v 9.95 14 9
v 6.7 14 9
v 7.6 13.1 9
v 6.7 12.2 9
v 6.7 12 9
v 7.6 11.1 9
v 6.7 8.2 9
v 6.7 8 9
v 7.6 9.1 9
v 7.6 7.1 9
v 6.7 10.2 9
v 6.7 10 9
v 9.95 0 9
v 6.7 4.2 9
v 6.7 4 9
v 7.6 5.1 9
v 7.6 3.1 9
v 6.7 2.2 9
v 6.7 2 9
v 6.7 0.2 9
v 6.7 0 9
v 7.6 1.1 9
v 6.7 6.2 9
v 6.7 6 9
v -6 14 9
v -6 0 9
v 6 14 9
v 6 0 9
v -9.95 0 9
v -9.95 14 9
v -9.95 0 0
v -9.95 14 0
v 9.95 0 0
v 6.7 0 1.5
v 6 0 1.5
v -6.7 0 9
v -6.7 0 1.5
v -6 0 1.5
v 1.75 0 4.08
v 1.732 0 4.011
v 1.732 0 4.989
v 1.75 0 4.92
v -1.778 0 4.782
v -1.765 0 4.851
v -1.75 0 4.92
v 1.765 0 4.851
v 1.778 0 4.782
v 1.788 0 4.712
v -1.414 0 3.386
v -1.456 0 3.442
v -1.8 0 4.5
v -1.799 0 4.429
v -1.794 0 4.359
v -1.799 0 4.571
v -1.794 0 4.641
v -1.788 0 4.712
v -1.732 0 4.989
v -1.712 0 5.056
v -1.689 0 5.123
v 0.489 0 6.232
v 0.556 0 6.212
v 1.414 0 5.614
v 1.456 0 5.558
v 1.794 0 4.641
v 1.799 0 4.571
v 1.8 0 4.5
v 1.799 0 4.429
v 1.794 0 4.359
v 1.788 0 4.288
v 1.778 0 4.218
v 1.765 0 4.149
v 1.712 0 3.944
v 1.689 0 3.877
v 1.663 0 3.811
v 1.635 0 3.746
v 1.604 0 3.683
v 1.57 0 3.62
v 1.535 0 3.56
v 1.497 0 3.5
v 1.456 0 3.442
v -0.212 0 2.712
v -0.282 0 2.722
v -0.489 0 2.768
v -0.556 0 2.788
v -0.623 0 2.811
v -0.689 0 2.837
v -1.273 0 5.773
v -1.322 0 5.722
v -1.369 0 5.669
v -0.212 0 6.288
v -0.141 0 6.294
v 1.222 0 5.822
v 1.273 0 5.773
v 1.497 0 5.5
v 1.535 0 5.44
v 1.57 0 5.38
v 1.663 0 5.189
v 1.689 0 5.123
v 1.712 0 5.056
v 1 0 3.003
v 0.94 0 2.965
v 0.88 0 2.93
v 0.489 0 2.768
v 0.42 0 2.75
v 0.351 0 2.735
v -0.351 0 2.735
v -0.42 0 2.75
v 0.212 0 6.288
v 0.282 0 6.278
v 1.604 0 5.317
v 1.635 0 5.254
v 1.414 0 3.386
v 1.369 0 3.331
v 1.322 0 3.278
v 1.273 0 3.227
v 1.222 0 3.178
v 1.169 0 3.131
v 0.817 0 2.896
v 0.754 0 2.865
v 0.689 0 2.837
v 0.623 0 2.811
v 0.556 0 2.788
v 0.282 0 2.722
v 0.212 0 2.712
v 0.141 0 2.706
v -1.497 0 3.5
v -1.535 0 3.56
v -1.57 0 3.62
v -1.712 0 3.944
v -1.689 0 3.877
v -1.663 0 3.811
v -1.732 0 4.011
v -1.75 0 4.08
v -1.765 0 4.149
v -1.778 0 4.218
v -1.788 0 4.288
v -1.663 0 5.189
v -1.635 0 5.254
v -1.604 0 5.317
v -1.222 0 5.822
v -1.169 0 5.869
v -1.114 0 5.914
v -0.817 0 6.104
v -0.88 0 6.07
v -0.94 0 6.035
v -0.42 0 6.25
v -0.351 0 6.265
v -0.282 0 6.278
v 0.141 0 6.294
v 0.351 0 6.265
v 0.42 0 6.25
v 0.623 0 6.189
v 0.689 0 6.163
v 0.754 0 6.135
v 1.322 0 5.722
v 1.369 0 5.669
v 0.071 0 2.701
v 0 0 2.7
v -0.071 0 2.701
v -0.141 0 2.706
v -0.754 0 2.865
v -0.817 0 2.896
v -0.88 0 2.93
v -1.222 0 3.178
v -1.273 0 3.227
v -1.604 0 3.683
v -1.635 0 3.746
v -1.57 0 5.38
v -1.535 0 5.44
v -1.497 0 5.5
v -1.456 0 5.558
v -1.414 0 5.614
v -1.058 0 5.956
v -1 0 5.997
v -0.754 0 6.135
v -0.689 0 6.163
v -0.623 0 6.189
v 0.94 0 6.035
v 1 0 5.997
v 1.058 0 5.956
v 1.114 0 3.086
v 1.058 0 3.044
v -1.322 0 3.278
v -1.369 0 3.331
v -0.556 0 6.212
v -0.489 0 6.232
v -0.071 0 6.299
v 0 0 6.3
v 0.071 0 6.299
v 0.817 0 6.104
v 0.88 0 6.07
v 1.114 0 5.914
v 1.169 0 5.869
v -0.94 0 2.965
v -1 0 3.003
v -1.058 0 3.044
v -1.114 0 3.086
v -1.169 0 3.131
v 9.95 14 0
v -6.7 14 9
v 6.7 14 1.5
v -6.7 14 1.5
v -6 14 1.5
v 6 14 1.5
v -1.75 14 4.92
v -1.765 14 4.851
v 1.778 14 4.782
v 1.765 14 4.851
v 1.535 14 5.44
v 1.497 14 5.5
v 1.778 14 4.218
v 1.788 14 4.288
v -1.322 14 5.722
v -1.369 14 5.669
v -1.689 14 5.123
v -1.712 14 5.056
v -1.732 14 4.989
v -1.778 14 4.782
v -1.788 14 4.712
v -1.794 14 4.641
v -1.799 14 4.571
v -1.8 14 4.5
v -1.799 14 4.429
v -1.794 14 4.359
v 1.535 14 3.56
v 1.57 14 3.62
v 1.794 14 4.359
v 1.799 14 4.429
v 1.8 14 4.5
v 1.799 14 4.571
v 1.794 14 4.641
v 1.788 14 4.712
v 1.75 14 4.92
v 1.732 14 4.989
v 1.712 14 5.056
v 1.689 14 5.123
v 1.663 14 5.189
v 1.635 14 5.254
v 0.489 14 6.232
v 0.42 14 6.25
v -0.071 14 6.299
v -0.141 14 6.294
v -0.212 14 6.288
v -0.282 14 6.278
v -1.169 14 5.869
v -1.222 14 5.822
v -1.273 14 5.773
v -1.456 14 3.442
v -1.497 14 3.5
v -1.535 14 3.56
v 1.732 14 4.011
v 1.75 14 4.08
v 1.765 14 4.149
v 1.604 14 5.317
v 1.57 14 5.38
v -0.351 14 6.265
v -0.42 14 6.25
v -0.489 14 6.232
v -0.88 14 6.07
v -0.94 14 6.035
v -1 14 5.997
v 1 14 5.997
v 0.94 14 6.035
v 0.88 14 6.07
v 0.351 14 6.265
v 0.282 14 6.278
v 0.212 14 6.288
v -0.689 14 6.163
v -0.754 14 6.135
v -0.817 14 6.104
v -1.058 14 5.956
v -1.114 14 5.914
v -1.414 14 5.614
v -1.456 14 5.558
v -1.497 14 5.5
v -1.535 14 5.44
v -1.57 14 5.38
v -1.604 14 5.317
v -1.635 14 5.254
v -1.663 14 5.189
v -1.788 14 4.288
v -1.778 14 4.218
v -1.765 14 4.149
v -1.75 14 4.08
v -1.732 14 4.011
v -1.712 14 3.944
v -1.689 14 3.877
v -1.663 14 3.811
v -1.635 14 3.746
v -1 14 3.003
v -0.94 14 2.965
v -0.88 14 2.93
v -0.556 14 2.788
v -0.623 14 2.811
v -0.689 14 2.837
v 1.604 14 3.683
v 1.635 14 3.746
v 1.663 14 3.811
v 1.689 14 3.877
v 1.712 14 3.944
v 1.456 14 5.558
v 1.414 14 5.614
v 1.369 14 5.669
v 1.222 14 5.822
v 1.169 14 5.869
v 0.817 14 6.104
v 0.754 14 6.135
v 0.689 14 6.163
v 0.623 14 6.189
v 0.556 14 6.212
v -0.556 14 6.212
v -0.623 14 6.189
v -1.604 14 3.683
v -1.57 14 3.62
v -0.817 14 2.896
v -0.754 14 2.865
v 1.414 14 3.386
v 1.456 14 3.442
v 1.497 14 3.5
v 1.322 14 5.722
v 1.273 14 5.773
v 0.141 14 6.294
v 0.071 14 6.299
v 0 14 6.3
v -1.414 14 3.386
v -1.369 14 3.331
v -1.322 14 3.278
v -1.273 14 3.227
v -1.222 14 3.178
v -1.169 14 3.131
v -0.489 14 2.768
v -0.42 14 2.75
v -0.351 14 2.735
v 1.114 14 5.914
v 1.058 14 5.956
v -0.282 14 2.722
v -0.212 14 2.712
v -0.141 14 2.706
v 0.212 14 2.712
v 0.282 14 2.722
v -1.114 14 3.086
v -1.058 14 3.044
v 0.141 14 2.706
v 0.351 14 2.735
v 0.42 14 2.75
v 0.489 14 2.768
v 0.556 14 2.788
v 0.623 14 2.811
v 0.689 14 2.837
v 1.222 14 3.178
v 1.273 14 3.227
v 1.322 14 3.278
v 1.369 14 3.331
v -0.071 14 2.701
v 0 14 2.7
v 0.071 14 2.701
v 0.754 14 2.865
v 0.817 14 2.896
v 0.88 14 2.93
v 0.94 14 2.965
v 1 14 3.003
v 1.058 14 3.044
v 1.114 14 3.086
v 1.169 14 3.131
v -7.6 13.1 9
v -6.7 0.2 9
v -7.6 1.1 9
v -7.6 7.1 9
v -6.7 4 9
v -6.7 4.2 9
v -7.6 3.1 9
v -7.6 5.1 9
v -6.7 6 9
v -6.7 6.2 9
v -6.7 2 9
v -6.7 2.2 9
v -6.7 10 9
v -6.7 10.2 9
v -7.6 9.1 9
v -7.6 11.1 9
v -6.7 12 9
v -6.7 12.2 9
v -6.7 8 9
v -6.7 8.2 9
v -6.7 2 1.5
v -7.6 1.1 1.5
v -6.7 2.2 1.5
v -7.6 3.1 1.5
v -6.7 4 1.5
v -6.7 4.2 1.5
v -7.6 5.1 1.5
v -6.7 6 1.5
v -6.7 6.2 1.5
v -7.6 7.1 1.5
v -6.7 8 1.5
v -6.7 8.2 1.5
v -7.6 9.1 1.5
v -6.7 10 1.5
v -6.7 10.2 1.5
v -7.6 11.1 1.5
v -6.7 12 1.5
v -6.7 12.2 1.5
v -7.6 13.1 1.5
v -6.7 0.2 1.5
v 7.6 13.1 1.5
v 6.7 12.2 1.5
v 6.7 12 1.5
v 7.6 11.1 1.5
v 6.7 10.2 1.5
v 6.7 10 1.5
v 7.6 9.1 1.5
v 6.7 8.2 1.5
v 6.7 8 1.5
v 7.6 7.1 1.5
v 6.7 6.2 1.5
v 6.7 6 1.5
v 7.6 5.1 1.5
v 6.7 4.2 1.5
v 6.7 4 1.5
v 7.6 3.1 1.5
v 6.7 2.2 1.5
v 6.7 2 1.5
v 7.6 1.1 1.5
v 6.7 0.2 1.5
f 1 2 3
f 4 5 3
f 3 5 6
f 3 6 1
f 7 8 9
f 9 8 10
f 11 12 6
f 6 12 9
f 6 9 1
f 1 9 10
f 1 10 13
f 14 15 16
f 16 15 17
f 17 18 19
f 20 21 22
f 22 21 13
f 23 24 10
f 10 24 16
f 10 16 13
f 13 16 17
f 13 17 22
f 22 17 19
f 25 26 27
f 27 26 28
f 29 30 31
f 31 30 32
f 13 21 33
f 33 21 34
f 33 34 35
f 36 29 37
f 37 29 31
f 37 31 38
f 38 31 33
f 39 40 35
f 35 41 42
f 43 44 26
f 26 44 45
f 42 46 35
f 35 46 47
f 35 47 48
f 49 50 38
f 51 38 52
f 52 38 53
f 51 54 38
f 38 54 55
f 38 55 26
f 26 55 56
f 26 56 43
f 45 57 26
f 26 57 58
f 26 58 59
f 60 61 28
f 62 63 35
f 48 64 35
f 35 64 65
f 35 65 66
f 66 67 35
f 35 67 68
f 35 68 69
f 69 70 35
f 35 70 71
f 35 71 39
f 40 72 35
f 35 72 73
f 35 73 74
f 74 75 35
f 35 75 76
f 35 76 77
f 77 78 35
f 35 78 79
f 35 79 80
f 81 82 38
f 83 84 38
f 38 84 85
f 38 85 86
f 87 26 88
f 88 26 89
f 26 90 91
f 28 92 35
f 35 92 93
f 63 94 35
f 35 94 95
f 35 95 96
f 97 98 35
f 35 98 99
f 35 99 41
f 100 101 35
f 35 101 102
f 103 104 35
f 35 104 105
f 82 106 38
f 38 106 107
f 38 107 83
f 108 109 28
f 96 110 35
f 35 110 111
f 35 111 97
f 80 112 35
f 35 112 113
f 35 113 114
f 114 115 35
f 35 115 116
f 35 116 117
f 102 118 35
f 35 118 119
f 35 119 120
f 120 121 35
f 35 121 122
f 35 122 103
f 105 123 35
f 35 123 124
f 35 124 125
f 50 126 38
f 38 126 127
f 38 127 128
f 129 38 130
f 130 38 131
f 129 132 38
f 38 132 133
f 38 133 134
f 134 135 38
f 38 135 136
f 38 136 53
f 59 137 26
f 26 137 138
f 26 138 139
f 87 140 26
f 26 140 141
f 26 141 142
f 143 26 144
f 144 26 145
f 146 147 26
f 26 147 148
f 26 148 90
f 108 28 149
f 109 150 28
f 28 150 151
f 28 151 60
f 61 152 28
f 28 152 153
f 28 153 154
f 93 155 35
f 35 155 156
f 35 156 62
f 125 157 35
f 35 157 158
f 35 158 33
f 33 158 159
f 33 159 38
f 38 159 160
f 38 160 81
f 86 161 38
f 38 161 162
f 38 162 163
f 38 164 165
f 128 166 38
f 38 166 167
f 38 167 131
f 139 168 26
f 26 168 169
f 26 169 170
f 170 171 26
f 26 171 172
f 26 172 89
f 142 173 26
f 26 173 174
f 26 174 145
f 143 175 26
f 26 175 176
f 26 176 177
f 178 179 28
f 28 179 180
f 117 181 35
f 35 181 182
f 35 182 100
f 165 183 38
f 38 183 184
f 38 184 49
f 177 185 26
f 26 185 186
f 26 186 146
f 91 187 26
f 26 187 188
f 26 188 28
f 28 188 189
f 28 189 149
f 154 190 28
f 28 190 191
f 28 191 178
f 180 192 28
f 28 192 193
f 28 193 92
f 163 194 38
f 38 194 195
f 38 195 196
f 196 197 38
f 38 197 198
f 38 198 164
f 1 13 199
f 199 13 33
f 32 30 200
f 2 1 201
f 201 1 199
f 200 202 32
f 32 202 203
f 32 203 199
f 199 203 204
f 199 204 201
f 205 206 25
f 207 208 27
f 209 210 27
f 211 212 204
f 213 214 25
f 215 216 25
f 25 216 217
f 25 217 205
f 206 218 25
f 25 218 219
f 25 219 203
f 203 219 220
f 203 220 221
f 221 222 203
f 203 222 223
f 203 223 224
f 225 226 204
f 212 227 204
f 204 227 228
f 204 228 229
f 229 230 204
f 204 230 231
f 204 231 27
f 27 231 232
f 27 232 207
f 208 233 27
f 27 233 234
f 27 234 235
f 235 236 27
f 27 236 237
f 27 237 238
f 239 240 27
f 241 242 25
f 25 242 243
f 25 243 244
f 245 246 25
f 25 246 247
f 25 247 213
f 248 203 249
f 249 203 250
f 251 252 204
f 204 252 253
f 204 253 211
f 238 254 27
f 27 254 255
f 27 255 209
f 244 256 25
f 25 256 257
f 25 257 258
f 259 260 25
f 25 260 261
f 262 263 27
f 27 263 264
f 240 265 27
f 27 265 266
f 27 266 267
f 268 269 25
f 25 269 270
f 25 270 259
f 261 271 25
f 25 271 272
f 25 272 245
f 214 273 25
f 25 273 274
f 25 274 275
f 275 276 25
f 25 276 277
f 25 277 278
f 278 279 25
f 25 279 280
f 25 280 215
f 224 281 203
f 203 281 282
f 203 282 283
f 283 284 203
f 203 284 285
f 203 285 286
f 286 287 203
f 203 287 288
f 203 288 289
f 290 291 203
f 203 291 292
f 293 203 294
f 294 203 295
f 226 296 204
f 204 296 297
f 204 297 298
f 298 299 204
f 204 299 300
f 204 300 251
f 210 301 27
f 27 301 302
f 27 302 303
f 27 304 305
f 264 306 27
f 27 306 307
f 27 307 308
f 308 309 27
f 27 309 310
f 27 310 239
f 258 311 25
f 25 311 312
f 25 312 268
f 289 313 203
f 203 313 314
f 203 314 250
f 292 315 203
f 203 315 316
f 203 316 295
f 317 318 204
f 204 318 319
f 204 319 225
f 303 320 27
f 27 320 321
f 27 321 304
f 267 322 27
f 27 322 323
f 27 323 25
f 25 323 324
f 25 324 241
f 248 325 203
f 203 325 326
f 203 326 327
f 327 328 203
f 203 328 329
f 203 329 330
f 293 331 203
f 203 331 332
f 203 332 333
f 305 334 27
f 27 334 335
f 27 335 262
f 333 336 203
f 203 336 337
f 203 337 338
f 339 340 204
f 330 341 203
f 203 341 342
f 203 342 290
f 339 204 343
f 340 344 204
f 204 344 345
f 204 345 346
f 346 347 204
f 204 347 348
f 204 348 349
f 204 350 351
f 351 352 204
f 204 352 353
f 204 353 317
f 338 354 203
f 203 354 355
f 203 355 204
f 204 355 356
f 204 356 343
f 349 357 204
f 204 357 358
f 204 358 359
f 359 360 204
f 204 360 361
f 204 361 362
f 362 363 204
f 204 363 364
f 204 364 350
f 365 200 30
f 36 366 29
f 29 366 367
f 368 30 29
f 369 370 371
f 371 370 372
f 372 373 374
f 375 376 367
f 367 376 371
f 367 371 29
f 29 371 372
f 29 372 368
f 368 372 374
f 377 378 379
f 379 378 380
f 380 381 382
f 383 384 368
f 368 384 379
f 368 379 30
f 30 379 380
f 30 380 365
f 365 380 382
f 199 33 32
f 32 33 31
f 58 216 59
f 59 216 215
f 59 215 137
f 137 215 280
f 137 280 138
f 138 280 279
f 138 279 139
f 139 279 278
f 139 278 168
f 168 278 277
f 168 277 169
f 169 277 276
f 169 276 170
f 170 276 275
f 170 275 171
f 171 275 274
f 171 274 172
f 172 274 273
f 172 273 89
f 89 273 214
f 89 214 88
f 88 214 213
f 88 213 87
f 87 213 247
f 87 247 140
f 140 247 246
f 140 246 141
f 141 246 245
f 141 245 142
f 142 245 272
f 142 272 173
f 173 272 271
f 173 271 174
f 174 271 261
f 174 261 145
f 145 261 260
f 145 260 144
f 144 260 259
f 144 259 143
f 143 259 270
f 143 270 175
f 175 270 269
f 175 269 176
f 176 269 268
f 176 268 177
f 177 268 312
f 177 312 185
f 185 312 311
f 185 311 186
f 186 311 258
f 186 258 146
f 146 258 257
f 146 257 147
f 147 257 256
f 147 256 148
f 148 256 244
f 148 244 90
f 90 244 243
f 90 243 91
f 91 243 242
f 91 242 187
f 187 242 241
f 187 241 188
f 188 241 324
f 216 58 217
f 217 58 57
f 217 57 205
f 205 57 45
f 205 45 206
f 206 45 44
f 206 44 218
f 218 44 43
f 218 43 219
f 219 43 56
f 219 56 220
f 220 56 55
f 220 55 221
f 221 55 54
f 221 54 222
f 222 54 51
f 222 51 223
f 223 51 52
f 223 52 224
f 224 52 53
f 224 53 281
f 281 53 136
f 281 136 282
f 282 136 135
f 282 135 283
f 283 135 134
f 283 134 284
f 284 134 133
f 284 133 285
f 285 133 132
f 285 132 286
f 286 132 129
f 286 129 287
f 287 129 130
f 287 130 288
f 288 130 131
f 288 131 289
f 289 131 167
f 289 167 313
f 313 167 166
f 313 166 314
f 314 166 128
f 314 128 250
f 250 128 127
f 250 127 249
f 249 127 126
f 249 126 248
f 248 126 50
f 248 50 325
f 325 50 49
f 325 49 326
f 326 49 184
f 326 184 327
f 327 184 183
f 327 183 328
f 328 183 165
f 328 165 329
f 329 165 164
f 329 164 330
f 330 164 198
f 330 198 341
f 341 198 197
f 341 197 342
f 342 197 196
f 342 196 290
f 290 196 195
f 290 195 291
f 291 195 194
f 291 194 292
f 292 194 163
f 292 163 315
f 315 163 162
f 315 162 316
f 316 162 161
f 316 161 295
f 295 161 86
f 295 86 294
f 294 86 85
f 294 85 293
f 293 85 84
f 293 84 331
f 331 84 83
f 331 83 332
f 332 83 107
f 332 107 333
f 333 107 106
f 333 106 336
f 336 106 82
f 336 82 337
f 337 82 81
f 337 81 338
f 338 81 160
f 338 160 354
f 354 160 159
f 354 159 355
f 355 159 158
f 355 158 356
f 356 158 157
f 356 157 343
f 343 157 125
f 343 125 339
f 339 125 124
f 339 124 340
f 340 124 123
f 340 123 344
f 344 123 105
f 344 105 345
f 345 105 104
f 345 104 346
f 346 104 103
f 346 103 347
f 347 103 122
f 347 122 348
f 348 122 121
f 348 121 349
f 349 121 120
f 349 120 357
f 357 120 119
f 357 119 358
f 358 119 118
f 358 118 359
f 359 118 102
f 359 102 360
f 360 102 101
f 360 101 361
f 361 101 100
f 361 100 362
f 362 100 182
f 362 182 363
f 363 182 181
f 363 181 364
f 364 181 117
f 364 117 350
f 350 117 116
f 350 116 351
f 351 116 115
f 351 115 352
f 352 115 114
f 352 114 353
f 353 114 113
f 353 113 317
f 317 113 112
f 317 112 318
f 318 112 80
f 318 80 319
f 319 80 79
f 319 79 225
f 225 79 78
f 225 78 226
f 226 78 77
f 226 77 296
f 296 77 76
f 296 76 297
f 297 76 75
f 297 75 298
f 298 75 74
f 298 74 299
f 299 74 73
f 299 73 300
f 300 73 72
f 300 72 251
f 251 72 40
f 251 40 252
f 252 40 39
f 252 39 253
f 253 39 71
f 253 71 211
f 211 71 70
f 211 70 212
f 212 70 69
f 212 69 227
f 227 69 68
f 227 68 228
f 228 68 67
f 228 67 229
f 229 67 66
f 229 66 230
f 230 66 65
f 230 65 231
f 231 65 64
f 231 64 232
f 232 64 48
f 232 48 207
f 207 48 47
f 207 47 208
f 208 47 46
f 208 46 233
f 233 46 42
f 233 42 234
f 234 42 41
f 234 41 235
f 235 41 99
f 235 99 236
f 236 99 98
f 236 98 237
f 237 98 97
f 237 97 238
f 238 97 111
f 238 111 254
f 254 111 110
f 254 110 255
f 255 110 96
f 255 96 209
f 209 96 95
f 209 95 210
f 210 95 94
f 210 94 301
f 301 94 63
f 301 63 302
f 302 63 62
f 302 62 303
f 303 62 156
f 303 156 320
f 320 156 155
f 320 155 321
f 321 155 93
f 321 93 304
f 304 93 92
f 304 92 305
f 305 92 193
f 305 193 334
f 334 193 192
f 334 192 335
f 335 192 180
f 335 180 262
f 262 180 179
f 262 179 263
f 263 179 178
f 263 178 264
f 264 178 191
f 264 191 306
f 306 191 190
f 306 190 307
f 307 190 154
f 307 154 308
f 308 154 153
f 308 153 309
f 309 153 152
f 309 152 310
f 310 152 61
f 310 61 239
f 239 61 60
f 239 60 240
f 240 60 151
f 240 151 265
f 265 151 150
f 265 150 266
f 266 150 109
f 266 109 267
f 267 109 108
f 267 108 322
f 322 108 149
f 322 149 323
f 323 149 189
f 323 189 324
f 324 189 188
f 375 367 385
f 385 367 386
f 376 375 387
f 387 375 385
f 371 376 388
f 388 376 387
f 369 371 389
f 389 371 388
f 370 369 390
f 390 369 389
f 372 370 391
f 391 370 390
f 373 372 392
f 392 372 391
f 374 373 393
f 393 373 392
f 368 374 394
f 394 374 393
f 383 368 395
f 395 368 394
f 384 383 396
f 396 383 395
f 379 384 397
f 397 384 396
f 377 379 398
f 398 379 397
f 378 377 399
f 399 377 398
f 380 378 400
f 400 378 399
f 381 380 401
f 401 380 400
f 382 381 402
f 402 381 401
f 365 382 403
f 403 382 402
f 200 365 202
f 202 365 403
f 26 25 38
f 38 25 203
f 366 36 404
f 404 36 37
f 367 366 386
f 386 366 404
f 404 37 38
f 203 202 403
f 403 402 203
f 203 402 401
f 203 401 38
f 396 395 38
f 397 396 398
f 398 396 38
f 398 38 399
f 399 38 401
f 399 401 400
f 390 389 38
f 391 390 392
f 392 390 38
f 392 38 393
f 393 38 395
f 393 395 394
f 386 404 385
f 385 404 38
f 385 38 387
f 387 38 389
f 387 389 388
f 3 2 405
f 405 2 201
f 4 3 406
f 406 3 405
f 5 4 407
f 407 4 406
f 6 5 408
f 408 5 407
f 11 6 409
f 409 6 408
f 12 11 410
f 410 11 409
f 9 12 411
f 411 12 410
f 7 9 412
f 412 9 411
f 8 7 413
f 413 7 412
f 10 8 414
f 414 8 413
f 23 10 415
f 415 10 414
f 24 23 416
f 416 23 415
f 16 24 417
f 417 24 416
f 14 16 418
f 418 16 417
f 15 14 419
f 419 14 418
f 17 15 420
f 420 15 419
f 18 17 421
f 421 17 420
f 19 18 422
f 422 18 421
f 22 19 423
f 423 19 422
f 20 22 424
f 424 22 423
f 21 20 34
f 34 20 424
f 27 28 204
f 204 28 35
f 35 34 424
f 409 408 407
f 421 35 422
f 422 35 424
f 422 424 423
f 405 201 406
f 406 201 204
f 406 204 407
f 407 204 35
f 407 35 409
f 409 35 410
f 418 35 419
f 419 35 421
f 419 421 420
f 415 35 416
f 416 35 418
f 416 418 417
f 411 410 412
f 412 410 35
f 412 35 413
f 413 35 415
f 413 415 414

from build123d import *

# Parameters (mm, degrees)
SKETCH1_W           = 19.9
SKETCH1_H           = 14
BOSS_EXTRUDE1_DEPTH = 9
SKETCH2_R           = 1.8
CUT_EXTRUDE1_DEPTH  = 20.390783893
CUT_EXTRUDE2_DEPTH  = 7.5


with BuildPart() as part:
    # Sketch1 → Boss-Extrude1 (new body)
    with BuildSketch(Plane.XY):
        with Locations((0, 7)):
            Rectangle(SKETCH1_W, SKETCH1_H)
    extrude(amount=BOSS_EXTRUDE1_DEPTH)

    # Sketch2 → Cut-Extrude1 (cut, through all)
    with BuildSketch(Plane(origin=(0, 14, 0), x_dir=(1, 0, 0), z_dir=(0, 1, 0))):
        with Locations(Location((0, -4.5, 0), (0, 0, 270))):
            Circle(SKETCH2_R)
    extrude(amount=-CUT_EXTRUDE1_DEPTH, mode=Mode.SUBTRACT)

    # Sketch3 → Cut-Extrude2 (cut)
    with BuildSketch(Plane.XY.offset(9)):
        Polygon((6, 14), (6, 0), (6.7, 0), (6.7, 0.2), (7.6, 1.1), (6.7, 2), (6.7, 2.2), (7.6, 3.1), (6.7, 4), (6.7, 4.2), (7.6, 5.1), (6.7, 6), (6.7, 6.2), (7.6, 7.1), (6.7, 8), (6.7, 8.2), (7.6, 9.1), (6.7, 10), (6.7, 10.2), (7.6, 11.1), (6.7, 12), (6.7, 12.2), (7.6, 13.1), (6.7, 14), align=None)
        Polygon((-6.7, 0.2), (-6.7, 0), (-6, 0), (-6, 14), (-6.7, 14), (-7.6, 13.1), (-6.7, 12.2), (-6.7, 12), (-7.6, 11.1), (-6.7, 10.2), (-6.7, 10), (-7.6, 9.1), (-6.7, 8.2), (-6.7, 8), (-7.6, 7.1), (-6.7, 6.2), (-6.7, 6), (-7.6, 5.1), (-6.7, 4.2), (-6.7, 4), (-7.6, 3.1), (-6.7, 2.2), (-6.7, 2), (-7.6, 1.1), align=None)
    extrude(amount=-CUT_EXTRUDE2_DEPTH, mode=Mode.SUBTRACT)


solid = part.part
